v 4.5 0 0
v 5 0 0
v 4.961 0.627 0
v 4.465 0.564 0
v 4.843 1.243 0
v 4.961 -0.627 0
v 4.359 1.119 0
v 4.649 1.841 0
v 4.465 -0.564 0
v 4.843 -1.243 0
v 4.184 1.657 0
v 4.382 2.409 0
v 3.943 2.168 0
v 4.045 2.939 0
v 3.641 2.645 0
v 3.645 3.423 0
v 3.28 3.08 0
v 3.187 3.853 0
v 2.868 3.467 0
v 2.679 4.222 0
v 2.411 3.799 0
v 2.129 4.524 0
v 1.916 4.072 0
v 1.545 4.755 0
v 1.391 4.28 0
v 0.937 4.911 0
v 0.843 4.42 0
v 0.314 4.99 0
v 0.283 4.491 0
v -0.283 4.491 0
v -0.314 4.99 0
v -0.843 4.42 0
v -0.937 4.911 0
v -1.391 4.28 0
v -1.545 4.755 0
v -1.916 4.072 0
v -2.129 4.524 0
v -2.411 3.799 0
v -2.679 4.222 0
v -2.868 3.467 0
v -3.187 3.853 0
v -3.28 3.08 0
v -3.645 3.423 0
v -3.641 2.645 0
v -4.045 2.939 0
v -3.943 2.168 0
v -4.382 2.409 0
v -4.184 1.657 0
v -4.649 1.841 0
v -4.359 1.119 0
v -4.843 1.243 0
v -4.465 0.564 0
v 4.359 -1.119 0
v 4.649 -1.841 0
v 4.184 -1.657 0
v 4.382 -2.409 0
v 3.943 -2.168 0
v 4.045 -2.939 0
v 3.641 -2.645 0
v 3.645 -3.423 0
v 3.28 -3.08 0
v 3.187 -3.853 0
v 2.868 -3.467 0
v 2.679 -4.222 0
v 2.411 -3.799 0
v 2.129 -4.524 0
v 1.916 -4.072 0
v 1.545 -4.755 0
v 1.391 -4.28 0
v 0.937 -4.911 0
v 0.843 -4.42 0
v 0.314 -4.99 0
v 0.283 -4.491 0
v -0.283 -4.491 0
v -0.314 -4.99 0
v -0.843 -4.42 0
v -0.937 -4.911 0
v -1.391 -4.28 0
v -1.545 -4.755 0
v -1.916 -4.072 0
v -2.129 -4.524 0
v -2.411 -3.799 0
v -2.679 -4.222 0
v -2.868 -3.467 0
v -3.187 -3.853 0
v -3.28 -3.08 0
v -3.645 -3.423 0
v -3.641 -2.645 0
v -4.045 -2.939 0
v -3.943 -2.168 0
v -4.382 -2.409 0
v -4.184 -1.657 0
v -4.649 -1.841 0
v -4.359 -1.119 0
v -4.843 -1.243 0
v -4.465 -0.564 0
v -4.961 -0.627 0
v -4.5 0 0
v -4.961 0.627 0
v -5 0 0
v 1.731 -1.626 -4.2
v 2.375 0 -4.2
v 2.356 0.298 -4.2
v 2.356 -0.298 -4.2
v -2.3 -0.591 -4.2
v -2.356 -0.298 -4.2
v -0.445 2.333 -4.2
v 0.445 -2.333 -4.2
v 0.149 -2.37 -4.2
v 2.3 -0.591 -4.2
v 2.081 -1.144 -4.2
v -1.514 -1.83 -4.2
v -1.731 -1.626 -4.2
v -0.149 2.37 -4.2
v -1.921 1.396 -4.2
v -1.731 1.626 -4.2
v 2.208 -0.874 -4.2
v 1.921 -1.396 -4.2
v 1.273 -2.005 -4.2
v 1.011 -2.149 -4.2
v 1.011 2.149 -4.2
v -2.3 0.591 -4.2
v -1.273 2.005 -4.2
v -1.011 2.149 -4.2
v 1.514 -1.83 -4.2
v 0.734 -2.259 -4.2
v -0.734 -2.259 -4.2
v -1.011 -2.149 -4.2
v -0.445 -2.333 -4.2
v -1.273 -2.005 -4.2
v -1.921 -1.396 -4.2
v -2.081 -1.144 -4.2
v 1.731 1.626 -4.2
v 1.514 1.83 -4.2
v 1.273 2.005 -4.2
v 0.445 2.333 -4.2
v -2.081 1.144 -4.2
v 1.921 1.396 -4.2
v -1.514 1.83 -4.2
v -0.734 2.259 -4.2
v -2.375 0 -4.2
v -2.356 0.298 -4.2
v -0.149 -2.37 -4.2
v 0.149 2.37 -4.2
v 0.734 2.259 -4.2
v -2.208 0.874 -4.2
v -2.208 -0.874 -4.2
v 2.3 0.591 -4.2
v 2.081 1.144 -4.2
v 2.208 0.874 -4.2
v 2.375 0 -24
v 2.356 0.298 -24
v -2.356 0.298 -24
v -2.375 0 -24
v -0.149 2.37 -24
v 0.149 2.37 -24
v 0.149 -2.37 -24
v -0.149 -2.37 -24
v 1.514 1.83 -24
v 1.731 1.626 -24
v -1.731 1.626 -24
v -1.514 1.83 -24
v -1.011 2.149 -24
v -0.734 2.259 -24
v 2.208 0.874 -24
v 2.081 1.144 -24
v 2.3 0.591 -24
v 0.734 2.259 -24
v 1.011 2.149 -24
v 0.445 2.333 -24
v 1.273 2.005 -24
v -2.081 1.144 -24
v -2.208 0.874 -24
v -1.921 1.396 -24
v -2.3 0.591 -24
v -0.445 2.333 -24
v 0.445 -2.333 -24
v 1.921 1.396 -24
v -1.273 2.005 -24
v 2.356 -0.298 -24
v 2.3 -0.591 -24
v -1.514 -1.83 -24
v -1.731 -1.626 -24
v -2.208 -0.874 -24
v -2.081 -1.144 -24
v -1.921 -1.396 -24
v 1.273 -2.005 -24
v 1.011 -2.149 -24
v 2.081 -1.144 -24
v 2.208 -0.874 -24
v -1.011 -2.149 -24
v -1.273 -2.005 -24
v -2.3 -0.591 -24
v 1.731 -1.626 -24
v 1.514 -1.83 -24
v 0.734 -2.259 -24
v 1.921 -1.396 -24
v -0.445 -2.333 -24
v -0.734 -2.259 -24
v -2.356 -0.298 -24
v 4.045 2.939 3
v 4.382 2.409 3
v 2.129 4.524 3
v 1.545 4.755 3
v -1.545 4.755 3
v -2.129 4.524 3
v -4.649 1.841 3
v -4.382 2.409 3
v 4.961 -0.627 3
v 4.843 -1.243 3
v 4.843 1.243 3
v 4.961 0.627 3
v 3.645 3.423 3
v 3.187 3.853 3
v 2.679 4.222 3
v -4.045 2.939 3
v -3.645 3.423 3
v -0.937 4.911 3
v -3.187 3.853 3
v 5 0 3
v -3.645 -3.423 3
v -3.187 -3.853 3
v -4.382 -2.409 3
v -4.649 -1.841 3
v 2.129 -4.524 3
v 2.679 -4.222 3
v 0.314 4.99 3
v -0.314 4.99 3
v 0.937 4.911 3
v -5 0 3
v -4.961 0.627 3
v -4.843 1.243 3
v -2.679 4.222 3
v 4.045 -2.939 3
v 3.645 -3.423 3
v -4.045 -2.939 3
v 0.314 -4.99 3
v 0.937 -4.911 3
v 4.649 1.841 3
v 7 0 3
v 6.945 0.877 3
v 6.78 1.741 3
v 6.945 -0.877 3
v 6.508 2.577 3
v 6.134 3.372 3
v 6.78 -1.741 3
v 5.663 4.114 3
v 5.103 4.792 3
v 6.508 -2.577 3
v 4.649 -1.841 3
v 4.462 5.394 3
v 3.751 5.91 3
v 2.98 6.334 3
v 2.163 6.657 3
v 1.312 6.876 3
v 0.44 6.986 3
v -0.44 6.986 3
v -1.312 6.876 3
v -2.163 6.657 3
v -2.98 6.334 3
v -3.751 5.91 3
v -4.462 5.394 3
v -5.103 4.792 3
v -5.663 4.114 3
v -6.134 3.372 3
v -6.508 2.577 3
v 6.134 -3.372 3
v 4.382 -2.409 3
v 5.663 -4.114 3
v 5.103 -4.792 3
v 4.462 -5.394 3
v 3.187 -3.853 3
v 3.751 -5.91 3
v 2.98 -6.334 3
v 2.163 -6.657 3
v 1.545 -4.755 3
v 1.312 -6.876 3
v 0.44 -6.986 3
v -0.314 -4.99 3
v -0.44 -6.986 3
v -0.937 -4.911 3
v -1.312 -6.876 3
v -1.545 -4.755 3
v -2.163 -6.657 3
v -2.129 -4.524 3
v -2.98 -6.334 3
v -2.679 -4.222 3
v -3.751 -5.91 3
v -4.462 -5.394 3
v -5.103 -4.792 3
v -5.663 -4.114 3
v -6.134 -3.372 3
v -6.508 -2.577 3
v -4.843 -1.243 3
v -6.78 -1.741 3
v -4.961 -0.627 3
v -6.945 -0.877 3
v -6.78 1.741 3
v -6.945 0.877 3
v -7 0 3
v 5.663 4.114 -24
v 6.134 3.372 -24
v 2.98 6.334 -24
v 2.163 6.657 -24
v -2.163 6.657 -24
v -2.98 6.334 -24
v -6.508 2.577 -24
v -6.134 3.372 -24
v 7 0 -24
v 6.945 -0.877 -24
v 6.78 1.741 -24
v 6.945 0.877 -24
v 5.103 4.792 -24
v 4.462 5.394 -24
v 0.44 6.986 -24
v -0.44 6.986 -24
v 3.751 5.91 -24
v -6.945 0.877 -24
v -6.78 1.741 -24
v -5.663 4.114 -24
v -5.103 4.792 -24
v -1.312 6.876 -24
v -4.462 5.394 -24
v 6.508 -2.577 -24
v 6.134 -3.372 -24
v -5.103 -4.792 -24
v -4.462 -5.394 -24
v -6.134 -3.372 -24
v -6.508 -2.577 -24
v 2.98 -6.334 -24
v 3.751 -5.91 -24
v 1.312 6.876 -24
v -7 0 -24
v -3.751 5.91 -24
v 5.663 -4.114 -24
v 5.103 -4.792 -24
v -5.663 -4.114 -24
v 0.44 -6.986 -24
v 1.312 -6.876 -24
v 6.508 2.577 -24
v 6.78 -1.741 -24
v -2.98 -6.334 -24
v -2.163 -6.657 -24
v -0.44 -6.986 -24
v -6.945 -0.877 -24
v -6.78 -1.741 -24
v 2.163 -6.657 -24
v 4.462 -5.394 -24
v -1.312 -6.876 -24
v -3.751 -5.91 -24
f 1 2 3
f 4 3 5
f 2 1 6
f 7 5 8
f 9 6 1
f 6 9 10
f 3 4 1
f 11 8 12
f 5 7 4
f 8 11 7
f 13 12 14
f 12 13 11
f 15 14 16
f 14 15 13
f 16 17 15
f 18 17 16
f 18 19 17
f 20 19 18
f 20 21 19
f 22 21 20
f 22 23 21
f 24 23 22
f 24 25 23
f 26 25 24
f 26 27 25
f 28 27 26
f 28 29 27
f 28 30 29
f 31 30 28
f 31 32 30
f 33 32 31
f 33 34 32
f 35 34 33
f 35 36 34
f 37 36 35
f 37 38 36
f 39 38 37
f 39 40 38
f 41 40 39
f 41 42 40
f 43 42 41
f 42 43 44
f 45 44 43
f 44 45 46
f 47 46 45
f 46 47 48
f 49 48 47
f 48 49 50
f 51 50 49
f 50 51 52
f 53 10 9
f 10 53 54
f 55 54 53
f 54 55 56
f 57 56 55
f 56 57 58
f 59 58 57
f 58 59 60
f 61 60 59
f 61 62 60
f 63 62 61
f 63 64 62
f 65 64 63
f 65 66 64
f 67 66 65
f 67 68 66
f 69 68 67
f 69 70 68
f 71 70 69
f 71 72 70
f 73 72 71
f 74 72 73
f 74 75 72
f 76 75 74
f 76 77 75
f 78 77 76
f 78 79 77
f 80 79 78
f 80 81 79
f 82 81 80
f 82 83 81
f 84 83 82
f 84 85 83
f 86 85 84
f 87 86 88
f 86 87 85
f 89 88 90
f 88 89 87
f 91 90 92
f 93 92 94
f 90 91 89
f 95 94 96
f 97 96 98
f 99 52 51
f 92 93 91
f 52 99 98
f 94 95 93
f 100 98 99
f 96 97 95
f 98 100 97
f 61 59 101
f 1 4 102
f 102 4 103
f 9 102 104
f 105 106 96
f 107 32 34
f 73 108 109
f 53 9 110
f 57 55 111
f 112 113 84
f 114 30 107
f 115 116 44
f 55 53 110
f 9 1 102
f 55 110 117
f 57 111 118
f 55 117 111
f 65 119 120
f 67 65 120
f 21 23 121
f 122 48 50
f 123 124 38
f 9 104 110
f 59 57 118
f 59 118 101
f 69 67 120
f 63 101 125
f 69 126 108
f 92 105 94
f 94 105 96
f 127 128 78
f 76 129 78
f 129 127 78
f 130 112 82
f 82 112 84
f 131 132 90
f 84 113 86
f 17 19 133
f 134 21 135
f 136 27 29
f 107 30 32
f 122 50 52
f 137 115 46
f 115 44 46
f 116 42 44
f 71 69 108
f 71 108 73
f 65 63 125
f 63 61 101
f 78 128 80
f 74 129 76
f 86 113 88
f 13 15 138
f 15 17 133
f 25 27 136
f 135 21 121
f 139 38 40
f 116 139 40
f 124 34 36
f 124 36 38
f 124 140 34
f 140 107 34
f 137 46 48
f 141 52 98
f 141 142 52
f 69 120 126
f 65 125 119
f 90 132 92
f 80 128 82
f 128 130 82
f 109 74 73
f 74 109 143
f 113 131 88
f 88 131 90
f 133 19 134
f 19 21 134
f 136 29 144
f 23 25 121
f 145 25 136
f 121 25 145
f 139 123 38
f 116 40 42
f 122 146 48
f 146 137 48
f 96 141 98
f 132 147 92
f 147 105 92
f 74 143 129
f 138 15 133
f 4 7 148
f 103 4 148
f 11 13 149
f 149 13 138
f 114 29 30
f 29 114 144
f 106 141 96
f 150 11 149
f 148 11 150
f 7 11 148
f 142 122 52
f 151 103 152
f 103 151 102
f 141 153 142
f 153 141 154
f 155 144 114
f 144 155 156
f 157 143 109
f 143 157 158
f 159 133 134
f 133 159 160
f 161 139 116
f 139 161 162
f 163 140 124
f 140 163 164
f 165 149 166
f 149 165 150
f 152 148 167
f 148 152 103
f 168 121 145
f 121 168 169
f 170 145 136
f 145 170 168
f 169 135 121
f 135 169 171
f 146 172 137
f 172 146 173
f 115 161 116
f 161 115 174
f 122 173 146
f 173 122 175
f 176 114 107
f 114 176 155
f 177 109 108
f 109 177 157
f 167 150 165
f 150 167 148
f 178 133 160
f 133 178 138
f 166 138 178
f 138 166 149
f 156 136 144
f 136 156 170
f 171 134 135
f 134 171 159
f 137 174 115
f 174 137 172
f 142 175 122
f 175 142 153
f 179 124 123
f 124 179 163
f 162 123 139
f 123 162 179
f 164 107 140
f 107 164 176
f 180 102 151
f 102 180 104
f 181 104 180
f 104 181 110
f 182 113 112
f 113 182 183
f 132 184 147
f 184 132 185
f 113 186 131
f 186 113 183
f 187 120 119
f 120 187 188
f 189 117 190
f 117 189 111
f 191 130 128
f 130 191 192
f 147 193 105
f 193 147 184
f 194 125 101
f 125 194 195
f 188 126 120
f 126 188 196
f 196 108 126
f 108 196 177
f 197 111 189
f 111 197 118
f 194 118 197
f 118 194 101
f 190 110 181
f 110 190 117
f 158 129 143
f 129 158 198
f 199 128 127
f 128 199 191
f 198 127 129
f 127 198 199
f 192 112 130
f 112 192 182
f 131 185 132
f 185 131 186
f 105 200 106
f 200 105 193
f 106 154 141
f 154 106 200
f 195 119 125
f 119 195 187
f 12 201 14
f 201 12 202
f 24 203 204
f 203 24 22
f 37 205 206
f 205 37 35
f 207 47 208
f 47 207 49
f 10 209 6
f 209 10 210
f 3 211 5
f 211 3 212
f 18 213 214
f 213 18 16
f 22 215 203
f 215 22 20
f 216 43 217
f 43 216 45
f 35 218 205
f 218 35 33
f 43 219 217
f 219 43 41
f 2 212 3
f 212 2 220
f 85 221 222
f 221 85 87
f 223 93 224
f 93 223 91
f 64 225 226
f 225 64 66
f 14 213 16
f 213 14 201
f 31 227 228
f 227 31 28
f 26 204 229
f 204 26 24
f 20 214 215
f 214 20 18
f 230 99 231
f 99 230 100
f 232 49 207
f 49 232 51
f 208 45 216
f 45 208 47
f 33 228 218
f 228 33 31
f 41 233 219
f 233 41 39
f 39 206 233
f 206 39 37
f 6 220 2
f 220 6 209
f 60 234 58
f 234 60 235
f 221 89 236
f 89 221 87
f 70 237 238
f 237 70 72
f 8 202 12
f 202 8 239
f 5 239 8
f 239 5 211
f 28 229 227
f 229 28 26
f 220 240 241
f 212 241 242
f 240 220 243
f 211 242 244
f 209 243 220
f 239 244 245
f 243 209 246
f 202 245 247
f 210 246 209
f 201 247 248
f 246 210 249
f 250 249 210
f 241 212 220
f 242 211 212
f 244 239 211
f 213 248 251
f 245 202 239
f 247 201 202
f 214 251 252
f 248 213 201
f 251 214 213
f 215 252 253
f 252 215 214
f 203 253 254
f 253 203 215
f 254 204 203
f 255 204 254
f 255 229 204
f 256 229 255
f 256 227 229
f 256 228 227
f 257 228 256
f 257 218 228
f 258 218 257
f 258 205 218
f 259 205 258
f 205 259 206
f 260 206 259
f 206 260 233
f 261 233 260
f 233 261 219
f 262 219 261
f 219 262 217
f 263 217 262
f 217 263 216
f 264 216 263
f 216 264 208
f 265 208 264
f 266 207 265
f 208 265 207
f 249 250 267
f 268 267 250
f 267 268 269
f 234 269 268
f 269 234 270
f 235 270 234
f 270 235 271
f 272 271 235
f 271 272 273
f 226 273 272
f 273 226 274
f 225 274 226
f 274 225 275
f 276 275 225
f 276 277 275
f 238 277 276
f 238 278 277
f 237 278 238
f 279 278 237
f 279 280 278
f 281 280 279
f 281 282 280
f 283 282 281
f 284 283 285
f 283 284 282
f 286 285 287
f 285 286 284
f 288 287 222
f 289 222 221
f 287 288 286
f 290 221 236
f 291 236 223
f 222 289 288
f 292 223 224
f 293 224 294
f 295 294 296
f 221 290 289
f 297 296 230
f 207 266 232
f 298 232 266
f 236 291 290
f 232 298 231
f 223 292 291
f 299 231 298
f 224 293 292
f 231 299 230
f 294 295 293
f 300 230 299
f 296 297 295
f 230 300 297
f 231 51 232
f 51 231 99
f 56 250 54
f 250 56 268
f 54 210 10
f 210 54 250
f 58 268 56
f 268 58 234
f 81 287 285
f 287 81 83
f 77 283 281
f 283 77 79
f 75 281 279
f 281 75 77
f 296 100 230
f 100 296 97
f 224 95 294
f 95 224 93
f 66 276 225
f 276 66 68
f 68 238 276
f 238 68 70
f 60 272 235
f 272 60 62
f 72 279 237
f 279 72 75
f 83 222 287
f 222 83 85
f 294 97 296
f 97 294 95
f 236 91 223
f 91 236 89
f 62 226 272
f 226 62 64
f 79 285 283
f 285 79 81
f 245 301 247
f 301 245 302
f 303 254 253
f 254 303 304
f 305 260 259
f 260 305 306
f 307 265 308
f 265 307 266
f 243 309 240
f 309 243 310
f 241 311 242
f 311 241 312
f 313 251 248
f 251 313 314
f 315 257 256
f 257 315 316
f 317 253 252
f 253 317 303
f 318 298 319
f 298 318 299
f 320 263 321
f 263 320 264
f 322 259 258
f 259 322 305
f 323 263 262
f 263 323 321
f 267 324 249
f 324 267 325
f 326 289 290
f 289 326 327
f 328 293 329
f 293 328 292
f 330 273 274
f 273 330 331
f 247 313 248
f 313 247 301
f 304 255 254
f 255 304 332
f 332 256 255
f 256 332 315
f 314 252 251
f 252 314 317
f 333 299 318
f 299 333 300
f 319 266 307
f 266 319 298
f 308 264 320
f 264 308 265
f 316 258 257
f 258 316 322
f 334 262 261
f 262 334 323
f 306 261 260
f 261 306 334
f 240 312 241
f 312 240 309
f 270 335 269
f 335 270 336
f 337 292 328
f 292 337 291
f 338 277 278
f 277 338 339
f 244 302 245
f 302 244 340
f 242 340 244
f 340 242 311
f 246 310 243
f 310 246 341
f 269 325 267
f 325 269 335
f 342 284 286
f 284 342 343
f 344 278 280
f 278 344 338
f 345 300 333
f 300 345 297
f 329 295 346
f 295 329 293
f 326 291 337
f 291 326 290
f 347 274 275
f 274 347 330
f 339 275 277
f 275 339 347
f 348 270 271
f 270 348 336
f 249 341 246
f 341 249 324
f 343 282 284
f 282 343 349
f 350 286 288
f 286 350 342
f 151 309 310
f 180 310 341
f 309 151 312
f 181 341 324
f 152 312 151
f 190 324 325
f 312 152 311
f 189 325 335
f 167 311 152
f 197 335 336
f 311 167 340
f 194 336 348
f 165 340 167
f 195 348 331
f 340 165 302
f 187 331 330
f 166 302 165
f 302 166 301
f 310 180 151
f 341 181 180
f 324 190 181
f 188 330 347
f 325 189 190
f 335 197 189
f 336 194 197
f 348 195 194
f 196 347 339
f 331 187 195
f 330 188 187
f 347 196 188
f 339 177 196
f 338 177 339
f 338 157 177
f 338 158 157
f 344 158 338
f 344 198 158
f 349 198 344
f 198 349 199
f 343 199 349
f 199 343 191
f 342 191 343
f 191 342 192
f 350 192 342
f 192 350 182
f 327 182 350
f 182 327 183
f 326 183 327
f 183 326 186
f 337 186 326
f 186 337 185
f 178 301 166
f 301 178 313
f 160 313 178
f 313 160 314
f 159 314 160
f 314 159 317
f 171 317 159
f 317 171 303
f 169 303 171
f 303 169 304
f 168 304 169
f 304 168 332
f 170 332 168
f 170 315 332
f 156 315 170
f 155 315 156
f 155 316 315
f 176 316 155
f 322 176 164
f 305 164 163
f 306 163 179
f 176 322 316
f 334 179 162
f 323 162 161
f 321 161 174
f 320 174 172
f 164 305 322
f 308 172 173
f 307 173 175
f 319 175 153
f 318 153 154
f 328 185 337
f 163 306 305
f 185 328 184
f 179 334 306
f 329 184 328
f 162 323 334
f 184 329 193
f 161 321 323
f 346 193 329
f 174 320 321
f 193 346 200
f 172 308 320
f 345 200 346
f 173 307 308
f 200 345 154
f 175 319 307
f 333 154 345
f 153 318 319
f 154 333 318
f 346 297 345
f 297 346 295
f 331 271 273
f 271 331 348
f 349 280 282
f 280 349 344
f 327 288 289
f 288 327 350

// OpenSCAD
$fn = 50;

difference() {
	union() {
		translate(v = [0, 0, -24.0]) {
			cylinder(h = 27, r = 7.0);
		}
	}
	union() {
		translate(v = [0, 0, 0]) {
			rotate(a = [0, 0, 0]) {
				difference() {
					union() {
						translate(v = [0, 0, -27.0]) {
							cylinder(h = 27, r = 2.25);
						}
						translate(v = [0, 0, -4.2]) {
							cylinder(h = 4.2, r1 = 2.375, r2 = 4.5);
						}
						translate(v = [0, 0, -27.0]) {
							cylinder(h = 27, r = 2.375);
						}
						translate(v = [0, 0, -27.0]) {
							cylinder(h = 27, r = 2.25);
						}
					}
					union();
				}
			}
		}
		#cylinder(h = 3, r = 5.0);
	}
}
